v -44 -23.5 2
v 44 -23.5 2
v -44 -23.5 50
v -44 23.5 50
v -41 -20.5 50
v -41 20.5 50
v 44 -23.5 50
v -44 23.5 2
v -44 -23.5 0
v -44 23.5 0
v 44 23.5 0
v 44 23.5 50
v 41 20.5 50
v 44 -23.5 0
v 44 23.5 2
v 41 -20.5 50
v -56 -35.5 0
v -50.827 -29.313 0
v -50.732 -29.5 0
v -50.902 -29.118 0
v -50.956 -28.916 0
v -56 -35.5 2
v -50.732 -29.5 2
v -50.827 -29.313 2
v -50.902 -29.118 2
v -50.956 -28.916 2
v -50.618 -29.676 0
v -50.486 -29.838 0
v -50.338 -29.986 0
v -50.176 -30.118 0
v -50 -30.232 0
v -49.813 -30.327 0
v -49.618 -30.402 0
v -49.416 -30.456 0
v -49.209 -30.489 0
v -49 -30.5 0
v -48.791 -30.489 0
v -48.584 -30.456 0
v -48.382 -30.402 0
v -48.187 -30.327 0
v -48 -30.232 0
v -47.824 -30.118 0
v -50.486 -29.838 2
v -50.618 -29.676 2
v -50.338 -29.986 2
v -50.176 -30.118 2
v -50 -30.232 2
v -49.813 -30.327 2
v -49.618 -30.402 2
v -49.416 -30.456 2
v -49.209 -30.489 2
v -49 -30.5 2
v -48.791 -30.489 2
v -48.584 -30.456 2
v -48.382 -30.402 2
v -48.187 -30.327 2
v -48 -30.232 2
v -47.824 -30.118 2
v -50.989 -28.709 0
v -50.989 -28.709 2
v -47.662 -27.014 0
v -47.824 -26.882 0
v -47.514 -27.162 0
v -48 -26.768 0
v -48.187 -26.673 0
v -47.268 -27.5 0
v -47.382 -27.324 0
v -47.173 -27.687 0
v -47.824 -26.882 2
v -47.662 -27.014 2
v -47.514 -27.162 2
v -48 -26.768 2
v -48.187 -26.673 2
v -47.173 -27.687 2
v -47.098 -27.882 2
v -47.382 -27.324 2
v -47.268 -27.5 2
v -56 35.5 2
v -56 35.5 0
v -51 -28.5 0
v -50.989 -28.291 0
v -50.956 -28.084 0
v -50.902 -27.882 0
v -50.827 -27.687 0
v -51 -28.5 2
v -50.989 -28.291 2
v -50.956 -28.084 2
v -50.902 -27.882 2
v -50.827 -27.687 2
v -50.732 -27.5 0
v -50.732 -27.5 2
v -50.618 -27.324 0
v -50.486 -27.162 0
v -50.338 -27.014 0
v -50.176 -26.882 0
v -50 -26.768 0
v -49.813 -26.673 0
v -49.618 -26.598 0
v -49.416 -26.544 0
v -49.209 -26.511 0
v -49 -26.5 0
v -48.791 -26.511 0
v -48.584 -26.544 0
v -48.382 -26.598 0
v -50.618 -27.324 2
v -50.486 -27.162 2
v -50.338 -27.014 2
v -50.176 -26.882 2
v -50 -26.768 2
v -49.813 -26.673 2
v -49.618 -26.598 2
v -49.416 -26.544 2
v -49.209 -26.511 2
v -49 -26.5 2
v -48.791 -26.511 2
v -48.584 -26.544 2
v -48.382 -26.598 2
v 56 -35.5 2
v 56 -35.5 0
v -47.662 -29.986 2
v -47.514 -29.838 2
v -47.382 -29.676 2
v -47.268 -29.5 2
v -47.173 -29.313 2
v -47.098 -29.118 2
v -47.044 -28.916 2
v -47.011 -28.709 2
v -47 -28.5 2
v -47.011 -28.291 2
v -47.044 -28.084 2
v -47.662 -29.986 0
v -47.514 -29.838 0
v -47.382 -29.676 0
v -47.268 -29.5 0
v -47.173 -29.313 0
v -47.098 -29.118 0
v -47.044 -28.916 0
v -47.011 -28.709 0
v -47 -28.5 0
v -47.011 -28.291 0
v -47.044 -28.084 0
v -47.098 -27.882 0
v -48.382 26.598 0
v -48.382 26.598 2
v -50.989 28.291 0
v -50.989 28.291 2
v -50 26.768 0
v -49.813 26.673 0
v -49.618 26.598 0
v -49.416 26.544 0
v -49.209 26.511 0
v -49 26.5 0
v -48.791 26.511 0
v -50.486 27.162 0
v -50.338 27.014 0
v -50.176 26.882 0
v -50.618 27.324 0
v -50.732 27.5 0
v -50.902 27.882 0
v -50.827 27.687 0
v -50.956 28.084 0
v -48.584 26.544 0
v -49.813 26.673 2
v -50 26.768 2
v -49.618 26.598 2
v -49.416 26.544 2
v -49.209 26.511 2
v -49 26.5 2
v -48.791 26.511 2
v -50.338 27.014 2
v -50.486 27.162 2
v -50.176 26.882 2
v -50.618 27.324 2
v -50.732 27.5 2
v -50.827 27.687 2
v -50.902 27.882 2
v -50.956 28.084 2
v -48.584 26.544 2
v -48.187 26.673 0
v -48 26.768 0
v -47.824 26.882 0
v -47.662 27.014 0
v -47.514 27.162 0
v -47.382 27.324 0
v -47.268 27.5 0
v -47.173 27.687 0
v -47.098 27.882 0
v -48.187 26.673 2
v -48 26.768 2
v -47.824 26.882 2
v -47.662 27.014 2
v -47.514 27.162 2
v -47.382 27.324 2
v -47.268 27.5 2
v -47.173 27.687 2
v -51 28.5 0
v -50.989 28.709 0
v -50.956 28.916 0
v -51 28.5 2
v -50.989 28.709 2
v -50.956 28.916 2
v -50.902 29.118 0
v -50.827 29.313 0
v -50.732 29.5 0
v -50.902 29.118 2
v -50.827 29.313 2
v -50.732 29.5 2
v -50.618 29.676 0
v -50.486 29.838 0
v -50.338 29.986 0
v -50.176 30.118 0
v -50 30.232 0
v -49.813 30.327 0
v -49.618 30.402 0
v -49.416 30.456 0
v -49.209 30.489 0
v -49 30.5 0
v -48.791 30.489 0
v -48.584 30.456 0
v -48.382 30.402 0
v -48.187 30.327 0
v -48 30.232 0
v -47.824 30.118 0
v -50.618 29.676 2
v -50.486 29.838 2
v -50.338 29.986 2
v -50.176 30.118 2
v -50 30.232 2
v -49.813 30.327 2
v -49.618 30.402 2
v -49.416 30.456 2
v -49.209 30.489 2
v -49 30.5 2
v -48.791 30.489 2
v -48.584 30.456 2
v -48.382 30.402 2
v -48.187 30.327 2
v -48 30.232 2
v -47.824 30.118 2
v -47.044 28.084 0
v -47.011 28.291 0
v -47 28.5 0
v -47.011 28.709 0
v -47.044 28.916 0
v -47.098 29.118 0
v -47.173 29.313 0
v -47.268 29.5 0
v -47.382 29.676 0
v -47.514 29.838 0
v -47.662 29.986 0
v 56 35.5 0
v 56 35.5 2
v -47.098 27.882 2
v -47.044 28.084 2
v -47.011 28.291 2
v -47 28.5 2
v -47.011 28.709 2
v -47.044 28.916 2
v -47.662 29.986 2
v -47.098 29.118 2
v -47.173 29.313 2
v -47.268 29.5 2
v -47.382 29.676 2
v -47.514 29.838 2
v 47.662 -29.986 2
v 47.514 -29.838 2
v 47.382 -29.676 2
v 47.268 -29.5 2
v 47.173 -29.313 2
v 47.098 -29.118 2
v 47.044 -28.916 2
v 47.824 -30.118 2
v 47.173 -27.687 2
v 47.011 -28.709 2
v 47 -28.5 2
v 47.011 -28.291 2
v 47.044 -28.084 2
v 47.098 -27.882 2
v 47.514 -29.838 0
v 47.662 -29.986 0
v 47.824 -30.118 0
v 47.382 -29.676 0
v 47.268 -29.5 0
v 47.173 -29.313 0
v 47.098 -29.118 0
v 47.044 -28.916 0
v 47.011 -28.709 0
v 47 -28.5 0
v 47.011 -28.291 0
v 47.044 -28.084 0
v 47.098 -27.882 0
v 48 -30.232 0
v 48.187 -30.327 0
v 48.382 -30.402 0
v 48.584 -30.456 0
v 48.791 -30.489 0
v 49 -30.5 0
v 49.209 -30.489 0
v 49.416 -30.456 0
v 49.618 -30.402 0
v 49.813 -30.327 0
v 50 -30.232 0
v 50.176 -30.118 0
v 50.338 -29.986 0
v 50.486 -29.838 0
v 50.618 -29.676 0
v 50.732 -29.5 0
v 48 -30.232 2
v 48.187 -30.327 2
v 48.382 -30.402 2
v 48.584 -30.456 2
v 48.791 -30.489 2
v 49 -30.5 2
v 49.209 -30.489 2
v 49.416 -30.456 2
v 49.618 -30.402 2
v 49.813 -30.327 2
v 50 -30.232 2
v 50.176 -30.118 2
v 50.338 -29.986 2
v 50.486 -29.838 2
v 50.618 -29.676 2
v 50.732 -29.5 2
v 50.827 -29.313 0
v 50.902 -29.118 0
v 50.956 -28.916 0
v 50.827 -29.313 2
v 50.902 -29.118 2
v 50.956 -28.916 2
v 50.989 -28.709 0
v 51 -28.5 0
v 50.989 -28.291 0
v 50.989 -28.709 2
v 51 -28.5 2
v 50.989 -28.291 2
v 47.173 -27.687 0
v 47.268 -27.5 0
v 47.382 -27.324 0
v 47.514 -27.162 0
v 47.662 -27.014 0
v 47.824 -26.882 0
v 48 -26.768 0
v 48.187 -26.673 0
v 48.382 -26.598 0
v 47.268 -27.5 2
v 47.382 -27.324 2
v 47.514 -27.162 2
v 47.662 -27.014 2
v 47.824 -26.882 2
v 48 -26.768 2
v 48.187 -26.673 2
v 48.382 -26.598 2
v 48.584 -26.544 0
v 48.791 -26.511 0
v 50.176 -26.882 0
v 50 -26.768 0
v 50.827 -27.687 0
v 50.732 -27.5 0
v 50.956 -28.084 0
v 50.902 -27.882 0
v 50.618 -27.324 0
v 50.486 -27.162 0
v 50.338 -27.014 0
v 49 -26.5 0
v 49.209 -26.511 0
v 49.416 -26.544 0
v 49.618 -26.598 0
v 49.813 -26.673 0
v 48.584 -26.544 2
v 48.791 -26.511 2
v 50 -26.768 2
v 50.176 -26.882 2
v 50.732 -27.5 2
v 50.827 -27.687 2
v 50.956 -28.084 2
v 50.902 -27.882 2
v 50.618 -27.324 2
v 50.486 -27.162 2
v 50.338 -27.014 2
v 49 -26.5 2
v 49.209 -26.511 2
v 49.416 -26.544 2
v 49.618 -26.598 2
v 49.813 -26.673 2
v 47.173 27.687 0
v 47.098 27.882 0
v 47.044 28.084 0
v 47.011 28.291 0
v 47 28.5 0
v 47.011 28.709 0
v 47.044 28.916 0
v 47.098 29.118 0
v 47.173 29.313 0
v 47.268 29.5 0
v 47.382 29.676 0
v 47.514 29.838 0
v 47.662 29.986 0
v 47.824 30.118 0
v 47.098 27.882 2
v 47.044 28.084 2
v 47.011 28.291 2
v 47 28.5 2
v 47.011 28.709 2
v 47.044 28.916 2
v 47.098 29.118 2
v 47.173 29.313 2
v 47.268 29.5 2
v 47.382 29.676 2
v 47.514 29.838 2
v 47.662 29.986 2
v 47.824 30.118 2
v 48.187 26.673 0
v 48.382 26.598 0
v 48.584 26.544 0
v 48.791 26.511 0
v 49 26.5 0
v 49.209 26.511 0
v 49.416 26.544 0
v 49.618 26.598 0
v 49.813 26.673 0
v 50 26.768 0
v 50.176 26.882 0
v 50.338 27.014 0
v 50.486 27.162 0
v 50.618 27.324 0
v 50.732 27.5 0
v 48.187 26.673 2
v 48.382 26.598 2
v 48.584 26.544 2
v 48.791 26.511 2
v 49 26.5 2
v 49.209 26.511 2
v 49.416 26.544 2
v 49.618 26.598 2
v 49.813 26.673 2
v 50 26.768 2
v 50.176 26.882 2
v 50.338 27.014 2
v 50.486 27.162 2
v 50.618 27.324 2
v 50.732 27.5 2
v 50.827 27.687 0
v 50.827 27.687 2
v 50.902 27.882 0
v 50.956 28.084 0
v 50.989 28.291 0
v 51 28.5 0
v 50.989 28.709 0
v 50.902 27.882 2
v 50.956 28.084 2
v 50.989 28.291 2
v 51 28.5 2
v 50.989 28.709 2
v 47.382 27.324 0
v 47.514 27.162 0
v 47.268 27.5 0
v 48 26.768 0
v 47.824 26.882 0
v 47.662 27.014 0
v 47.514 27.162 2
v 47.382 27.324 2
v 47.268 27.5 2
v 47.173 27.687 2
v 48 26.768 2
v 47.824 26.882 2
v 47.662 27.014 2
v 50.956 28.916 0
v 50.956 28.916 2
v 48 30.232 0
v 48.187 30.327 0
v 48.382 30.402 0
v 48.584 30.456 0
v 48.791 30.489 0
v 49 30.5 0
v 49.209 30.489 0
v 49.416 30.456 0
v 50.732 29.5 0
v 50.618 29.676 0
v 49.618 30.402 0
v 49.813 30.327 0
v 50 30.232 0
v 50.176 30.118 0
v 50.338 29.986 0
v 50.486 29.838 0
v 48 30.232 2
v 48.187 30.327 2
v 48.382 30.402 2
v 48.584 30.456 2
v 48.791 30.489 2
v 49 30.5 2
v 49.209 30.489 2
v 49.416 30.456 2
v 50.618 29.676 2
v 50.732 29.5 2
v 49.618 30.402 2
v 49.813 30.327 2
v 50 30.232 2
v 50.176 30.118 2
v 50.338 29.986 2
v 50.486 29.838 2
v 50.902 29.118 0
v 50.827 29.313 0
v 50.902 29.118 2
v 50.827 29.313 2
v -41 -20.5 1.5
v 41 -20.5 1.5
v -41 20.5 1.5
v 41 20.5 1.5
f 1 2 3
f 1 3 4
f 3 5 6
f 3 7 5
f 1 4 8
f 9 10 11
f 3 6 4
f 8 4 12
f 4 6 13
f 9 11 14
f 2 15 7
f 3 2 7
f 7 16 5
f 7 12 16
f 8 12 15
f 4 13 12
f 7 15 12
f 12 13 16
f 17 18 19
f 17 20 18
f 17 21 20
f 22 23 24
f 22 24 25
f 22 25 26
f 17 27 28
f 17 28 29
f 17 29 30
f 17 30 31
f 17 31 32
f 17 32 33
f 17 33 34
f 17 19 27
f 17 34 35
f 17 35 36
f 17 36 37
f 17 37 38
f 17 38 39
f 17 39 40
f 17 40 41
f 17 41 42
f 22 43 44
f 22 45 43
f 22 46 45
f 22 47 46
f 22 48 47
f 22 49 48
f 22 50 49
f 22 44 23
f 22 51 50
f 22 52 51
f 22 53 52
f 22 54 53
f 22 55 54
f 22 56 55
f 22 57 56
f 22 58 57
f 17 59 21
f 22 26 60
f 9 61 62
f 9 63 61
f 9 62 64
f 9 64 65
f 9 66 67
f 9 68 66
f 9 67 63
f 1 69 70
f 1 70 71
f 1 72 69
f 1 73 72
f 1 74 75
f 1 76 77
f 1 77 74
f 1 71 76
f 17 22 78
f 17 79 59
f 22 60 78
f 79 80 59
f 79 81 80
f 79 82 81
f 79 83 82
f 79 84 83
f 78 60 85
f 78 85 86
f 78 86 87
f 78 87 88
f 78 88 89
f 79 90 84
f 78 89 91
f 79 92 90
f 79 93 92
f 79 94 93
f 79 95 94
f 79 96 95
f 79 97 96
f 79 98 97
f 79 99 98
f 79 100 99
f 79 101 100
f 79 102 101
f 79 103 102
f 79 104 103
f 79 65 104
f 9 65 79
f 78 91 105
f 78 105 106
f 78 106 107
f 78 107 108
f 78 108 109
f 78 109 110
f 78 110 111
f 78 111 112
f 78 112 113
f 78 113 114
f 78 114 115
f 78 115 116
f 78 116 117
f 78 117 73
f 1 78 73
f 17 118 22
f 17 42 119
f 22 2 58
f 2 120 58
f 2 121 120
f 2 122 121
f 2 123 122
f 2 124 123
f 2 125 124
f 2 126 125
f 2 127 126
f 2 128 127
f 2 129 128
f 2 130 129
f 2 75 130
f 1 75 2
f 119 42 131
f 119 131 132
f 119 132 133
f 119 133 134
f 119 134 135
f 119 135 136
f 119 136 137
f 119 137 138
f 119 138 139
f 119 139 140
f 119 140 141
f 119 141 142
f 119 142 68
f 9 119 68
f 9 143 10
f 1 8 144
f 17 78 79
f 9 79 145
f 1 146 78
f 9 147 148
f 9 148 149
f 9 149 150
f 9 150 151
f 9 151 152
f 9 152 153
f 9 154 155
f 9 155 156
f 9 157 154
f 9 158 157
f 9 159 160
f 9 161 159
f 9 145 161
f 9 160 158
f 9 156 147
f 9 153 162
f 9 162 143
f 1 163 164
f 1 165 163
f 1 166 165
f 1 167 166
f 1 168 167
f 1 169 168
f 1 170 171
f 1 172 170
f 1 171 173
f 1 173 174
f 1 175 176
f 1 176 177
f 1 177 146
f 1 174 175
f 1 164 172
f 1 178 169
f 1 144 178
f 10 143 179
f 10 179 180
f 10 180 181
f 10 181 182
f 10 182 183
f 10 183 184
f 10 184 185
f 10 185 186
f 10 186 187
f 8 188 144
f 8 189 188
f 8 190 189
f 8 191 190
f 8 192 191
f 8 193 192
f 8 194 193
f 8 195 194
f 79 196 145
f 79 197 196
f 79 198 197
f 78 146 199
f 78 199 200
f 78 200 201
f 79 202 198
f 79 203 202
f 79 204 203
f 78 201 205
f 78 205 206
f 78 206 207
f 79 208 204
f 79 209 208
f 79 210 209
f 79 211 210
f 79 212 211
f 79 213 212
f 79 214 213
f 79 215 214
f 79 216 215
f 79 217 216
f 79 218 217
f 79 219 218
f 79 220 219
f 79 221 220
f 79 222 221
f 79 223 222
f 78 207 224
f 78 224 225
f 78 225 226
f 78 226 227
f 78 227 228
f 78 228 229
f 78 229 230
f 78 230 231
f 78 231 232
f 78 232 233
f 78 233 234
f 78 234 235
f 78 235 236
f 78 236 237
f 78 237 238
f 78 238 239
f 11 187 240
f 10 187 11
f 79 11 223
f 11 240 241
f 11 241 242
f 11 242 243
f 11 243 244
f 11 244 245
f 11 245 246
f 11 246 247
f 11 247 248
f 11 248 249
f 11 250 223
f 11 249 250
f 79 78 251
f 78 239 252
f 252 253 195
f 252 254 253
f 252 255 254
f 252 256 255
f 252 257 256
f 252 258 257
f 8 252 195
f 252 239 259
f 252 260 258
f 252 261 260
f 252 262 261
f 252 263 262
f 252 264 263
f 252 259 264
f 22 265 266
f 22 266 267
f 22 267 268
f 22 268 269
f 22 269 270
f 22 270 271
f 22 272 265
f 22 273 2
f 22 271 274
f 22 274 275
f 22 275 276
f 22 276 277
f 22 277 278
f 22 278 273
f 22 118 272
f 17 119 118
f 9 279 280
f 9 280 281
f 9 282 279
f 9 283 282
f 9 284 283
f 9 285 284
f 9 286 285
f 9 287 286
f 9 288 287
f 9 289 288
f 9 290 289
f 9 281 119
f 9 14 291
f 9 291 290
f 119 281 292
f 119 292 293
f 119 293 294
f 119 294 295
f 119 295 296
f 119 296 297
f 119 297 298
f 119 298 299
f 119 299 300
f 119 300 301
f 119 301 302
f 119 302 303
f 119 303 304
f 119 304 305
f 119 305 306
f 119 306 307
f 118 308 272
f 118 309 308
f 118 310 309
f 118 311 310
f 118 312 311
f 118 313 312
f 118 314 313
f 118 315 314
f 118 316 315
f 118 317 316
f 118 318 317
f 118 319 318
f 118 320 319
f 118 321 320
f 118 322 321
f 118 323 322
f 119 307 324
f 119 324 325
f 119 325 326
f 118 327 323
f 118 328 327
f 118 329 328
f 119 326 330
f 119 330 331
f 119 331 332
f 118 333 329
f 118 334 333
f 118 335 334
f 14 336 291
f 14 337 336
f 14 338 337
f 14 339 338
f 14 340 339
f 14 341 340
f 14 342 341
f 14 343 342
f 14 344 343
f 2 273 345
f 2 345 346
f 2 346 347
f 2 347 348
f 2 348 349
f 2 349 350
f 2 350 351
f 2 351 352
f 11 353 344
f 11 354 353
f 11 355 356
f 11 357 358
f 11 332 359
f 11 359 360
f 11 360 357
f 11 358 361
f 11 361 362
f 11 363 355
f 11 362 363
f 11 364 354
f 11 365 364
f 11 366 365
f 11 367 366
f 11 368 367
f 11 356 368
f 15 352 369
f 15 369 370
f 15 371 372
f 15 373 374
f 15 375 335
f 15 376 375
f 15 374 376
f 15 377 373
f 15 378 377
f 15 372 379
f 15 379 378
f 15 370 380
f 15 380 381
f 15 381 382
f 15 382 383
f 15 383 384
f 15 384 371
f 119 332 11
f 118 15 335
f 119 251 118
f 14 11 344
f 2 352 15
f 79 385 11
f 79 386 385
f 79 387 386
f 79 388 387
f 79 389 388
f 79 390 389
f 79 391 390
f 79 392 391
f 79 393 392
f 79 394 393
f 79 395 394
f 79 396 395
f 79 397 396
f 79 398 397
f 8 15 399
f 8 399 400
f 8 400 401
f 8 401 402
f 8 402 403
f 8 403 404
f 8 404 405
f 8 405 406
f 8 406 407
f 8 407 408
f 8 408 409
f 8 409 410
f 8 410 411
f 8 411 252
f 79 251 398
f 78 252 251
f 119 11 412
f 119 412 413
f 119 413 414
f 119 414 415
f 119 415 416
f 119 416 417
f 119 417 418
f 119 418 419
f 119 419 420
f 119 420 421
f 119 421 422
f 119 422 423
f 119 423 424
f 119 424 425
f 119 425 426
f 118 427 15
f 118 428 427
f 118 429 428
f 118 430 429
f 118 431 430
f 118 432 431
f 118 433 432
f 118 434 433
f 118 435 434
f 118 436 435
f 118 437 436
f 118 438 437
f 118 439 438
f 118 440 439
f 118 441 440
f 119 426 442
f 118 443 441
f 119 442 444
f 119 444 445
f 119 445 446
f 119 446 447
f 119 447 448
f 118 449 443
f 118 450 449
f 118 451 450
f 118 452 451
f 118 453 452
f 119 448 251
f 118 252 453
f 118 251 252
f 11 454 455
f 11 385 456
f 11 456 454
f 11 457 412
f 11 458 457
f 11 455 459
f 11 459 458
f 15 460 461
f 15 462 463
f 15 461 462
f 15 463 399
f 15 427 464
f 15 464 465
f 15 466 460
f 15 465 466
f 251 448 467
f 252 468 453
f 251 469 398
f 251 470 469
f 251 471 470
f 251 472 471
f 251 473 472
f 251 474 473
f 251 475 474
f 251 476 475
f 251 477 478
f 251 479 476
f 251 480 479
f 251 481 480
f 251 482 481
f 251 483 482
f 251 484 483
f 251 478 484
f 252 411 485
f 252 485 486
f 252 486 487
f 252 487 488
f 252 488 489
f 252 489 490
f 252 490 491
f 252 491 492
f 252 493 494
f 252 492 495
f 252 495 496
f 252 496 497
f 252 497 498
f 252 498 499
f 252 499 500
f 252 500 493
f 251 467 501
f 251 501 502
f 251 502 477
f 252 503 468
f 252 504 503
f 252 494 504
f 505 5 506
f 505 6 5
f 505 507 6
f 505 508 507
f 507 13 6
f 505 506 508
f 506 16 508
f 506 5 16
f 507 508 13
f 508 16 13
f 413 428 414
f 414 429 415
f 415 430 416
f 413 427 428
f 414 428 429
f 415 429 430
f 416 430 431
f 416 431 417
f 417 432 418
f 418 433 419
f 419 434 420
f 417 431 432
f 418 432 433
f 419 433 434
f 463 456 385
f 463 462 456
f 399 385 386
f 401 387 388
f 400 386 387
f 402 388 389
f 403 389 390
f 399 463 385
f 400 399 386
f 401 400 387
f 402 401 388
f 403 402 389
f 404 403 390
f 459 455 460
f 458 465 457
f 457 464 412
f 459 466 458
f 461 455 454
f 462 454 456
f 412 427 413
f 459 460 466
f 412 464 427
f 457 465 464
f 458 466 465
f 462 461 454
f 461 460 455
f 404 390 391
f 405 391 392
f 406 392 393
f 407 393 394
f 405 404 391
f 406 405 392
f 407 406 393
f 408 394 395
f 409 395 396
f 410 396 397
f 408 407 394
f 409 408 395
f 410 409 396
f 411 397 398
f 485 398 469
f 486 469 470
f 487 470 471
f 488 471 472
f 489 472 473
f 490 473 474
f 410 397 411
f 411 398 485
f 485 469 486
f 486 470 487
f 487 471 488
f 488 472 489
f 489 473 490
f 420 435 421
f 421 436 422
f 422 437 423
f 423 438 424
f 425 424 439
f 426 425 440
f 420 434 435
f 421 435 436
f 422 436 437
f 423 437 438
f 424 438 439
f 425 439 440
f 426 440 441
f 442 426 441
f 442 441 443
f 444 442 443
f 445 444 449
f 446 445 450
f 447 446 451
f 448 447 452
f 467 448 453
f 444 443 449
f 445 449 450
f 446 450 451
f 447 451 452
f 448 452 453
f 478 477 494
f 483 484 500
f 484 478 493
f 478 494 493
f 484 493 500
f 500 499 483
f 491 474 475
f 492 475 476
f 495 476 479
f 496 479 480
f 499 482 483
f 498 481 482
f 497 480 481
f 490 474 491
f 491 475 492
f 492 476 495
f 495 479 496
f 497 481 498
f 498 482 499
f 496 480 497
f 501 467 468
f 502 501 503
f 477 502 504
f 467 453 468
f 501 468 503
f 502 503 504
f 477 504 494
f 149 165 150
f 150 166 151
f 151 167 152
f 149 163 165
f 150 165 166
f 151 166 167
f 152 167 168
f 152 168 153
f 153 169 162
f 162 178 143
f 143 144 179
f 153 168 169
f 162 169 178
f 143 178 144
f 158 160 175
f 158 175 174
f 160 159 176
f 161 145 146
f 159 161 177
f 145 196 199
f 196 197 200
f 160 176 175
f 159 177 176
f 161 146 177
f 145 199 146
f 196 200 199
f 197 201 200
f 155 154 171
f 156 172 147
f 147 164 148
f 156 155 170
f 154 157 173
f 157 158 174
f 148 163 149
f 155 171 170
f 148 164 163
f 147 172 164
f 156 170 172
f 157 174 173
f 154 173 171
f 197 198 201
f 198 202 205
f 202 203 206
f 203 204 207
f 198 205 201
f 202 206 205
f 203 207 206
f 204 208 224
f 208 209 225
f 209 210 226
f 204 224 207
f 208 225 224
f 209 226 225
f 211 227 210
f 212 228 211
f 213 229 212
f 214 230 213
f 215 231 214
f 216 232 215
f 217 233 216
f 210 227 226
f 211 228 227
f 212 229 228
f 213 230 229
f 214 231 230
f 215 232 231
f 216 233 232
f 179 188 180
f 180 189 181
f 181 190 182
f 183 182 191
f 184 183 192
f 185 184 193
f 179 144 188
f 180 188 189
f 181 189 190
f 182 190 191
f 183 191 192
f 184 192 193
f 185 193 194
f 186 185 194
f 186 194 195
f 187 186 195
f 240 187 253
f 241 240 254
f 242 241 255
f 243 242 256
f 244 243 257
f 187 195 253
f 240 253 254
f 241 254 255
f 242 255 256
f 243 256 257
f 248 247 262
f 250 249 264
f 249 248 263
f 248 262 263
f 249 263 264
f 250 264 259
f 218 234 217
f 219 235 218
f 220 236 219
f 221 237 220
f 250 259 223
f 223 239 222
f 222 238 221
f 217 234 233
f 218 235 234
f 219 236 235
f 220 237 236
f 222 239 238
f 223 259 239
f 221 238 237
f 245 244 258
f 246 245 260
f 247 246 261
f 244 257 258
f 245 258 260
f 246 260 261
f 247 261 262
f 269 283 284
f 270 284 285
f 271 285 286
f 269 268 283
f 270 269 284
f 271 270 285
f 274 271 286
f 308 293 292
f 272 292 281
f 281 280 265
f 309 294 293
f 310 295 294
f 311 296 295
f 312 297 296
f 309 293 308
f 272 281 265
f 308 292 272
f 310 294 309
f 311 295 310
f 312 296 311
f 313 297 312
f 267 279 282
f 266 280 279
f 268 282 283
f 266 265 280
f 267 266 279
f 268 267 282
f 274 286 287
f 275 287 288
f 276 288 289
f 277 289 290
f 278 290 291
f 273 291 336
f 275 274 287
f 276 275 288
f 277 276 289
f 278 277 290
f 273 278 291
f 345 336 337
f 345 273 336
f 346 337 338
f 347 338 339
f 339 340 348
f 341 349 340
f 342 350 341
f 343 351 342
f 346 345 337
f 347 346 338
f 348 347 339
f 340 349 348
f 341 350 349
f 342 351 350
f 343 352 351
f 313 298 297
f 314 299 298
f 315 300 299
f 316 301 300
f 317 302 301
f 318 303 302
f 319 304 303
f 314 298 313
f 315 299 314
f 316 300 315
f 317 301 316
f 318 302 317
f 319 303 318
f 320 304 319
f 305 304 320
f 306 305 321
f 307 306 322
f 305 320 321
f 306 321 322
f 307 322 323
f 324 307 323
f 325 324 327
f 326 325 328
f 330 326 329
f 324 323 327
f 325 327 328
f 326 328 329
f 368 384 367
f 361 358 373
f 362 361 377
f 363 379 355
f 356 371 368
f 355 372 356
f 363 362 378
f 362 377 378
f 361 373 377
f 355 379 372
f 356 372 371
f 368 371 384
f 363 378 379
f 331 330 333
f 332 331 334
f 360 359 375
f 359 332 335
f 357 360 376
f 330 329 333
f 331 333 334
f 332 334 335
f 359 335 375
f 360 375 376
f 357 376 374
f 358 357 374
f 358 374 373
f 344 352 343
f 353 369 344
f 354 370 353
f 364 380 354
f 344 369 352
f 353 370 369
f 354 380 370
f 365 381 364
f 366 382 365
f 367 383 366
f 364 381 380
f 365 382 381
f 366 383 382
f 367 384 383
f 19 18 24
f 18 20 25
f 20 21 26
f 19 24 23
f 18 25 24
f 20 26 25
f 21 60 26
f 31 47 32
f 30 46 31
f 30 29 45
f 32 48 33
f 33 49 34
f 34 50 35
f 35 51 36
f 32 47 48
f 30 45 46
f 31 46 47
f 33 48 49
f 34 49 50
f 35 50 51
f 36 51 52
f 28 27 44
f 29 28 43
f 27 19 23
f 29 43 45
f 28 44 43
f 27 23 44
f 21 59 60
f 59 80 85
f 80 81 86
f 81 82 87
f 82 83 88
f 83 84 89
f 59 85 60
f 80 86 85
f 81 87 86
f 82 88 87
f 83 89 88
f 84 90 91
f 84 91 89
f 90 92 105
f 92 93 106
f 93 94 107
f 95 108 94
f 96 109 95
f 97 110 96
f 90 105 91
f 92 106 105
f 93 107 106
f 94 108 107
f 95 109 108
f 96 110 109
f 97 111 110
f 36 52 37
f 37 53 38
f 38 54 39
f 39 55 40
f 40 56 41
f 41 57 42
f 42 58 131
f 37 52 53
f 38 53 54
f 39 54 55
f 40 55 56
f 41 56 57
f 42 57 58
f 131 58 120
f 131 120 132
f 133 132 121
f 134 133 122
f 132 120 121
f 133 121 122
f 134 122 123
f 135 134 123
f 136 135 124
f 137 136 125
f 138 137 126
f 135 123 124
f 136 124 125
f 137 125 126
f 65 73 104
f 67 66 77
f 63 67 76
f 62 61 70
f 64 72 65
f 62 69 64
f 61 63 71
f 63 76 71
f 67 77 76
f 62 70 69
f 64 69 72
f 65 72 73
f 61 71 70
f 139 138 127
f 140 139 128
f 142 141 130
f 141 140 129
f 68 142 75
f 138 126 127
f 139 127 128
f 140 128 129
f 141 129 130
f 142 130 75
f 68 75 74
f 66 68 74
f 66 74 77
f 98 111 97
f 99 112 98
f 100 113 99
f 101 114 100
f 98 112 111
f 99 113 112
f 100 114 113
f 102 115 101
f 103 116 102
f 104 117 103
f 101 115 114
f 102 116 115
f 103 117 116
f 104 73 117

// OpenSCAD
// --- Parameters ---

// Inner dimensions of the sleeve (Battery size + tolerance)
// I have set these to match the standard YB1208300-USB (approx 80mm x 39mm)
inner_width = 82;  // Long side (approx 8cm + clearance)
inner_depth = 41;  // Short side (approx 4cm + clearance)

// Height of the sleeve walls
total_height = 50;

// Thickness of the walls and base floor
wall_thickness = 3;
floor_thickness = 2; 

// Width of the mounting tabs (ears) for the screws
tab_width = 12;

// Screw hole diameter (standard M3 or wood screw is ~3-4mm)
screw_hole_diameter = 4;

// Smoothness of circles
$fn = 60;

// --- Main Render ---

difference() {
    // 1. The main solid body (Base + Walls)
    union() {
        // The Sleeve Walls (Outer Block)
        translate([0, 0, total_height/2])
            cube([inner_width + 2*wall_thickness, inner_depth + 2*wall_thickness, total_height], center=true);
        
        // The Mounting Flanges (Base ears at corners)
        // We create a larger flat plate at the bottom for the screws
        translate([0, 0, floor_thickness/2])
            cube([inner_width + 2*wall_thickness + 2*tab_width, inner_depth + 2*wall_thickness + 2*tab_width, floor_thickness], center=true);
    }

    // 2. Subtract the "Hole" for the battery
    // We shift it up by 'floor_thickness' so the battery sits on a floor, not the wood.
    translate([0, 0, floor_thickness + (total_height/2)])
        cube([inner_width, inner_depth, total_height + 1], center=true);

    // 3. Subtract the Screw Holes (4 Corners)
    // We calculate the positions based on the total size
    
    // X and Y positions for the holes
    hole_x = (inner_width/2) + wall_thickness + (tab_width/2) - 1; 
    hole_y = (inner_depth/2) + wall_thickness + (tab_width/2) - 1;

    // Front-Right
    translate([hole_x, hole_y, -1])
        cylinder(h = total_height + 2, d = screw_hole_diameter);
    
    // Front-Left
    translate([-hole_x, hole_y, -1])
        cylinder(h = total_height + 2, d = screw_hole_diameter);
        
    // Back-Right
    translate([hole_x, -hole_y, -1])
        cylinder(h = total_height + 2, d = screw_hole_diameter);
        
    // Back-Left
    translate([-hole_x, -hole_y, -1])
        cylinder(h = total_height + 2, d = screw_hole_diameter);
}
